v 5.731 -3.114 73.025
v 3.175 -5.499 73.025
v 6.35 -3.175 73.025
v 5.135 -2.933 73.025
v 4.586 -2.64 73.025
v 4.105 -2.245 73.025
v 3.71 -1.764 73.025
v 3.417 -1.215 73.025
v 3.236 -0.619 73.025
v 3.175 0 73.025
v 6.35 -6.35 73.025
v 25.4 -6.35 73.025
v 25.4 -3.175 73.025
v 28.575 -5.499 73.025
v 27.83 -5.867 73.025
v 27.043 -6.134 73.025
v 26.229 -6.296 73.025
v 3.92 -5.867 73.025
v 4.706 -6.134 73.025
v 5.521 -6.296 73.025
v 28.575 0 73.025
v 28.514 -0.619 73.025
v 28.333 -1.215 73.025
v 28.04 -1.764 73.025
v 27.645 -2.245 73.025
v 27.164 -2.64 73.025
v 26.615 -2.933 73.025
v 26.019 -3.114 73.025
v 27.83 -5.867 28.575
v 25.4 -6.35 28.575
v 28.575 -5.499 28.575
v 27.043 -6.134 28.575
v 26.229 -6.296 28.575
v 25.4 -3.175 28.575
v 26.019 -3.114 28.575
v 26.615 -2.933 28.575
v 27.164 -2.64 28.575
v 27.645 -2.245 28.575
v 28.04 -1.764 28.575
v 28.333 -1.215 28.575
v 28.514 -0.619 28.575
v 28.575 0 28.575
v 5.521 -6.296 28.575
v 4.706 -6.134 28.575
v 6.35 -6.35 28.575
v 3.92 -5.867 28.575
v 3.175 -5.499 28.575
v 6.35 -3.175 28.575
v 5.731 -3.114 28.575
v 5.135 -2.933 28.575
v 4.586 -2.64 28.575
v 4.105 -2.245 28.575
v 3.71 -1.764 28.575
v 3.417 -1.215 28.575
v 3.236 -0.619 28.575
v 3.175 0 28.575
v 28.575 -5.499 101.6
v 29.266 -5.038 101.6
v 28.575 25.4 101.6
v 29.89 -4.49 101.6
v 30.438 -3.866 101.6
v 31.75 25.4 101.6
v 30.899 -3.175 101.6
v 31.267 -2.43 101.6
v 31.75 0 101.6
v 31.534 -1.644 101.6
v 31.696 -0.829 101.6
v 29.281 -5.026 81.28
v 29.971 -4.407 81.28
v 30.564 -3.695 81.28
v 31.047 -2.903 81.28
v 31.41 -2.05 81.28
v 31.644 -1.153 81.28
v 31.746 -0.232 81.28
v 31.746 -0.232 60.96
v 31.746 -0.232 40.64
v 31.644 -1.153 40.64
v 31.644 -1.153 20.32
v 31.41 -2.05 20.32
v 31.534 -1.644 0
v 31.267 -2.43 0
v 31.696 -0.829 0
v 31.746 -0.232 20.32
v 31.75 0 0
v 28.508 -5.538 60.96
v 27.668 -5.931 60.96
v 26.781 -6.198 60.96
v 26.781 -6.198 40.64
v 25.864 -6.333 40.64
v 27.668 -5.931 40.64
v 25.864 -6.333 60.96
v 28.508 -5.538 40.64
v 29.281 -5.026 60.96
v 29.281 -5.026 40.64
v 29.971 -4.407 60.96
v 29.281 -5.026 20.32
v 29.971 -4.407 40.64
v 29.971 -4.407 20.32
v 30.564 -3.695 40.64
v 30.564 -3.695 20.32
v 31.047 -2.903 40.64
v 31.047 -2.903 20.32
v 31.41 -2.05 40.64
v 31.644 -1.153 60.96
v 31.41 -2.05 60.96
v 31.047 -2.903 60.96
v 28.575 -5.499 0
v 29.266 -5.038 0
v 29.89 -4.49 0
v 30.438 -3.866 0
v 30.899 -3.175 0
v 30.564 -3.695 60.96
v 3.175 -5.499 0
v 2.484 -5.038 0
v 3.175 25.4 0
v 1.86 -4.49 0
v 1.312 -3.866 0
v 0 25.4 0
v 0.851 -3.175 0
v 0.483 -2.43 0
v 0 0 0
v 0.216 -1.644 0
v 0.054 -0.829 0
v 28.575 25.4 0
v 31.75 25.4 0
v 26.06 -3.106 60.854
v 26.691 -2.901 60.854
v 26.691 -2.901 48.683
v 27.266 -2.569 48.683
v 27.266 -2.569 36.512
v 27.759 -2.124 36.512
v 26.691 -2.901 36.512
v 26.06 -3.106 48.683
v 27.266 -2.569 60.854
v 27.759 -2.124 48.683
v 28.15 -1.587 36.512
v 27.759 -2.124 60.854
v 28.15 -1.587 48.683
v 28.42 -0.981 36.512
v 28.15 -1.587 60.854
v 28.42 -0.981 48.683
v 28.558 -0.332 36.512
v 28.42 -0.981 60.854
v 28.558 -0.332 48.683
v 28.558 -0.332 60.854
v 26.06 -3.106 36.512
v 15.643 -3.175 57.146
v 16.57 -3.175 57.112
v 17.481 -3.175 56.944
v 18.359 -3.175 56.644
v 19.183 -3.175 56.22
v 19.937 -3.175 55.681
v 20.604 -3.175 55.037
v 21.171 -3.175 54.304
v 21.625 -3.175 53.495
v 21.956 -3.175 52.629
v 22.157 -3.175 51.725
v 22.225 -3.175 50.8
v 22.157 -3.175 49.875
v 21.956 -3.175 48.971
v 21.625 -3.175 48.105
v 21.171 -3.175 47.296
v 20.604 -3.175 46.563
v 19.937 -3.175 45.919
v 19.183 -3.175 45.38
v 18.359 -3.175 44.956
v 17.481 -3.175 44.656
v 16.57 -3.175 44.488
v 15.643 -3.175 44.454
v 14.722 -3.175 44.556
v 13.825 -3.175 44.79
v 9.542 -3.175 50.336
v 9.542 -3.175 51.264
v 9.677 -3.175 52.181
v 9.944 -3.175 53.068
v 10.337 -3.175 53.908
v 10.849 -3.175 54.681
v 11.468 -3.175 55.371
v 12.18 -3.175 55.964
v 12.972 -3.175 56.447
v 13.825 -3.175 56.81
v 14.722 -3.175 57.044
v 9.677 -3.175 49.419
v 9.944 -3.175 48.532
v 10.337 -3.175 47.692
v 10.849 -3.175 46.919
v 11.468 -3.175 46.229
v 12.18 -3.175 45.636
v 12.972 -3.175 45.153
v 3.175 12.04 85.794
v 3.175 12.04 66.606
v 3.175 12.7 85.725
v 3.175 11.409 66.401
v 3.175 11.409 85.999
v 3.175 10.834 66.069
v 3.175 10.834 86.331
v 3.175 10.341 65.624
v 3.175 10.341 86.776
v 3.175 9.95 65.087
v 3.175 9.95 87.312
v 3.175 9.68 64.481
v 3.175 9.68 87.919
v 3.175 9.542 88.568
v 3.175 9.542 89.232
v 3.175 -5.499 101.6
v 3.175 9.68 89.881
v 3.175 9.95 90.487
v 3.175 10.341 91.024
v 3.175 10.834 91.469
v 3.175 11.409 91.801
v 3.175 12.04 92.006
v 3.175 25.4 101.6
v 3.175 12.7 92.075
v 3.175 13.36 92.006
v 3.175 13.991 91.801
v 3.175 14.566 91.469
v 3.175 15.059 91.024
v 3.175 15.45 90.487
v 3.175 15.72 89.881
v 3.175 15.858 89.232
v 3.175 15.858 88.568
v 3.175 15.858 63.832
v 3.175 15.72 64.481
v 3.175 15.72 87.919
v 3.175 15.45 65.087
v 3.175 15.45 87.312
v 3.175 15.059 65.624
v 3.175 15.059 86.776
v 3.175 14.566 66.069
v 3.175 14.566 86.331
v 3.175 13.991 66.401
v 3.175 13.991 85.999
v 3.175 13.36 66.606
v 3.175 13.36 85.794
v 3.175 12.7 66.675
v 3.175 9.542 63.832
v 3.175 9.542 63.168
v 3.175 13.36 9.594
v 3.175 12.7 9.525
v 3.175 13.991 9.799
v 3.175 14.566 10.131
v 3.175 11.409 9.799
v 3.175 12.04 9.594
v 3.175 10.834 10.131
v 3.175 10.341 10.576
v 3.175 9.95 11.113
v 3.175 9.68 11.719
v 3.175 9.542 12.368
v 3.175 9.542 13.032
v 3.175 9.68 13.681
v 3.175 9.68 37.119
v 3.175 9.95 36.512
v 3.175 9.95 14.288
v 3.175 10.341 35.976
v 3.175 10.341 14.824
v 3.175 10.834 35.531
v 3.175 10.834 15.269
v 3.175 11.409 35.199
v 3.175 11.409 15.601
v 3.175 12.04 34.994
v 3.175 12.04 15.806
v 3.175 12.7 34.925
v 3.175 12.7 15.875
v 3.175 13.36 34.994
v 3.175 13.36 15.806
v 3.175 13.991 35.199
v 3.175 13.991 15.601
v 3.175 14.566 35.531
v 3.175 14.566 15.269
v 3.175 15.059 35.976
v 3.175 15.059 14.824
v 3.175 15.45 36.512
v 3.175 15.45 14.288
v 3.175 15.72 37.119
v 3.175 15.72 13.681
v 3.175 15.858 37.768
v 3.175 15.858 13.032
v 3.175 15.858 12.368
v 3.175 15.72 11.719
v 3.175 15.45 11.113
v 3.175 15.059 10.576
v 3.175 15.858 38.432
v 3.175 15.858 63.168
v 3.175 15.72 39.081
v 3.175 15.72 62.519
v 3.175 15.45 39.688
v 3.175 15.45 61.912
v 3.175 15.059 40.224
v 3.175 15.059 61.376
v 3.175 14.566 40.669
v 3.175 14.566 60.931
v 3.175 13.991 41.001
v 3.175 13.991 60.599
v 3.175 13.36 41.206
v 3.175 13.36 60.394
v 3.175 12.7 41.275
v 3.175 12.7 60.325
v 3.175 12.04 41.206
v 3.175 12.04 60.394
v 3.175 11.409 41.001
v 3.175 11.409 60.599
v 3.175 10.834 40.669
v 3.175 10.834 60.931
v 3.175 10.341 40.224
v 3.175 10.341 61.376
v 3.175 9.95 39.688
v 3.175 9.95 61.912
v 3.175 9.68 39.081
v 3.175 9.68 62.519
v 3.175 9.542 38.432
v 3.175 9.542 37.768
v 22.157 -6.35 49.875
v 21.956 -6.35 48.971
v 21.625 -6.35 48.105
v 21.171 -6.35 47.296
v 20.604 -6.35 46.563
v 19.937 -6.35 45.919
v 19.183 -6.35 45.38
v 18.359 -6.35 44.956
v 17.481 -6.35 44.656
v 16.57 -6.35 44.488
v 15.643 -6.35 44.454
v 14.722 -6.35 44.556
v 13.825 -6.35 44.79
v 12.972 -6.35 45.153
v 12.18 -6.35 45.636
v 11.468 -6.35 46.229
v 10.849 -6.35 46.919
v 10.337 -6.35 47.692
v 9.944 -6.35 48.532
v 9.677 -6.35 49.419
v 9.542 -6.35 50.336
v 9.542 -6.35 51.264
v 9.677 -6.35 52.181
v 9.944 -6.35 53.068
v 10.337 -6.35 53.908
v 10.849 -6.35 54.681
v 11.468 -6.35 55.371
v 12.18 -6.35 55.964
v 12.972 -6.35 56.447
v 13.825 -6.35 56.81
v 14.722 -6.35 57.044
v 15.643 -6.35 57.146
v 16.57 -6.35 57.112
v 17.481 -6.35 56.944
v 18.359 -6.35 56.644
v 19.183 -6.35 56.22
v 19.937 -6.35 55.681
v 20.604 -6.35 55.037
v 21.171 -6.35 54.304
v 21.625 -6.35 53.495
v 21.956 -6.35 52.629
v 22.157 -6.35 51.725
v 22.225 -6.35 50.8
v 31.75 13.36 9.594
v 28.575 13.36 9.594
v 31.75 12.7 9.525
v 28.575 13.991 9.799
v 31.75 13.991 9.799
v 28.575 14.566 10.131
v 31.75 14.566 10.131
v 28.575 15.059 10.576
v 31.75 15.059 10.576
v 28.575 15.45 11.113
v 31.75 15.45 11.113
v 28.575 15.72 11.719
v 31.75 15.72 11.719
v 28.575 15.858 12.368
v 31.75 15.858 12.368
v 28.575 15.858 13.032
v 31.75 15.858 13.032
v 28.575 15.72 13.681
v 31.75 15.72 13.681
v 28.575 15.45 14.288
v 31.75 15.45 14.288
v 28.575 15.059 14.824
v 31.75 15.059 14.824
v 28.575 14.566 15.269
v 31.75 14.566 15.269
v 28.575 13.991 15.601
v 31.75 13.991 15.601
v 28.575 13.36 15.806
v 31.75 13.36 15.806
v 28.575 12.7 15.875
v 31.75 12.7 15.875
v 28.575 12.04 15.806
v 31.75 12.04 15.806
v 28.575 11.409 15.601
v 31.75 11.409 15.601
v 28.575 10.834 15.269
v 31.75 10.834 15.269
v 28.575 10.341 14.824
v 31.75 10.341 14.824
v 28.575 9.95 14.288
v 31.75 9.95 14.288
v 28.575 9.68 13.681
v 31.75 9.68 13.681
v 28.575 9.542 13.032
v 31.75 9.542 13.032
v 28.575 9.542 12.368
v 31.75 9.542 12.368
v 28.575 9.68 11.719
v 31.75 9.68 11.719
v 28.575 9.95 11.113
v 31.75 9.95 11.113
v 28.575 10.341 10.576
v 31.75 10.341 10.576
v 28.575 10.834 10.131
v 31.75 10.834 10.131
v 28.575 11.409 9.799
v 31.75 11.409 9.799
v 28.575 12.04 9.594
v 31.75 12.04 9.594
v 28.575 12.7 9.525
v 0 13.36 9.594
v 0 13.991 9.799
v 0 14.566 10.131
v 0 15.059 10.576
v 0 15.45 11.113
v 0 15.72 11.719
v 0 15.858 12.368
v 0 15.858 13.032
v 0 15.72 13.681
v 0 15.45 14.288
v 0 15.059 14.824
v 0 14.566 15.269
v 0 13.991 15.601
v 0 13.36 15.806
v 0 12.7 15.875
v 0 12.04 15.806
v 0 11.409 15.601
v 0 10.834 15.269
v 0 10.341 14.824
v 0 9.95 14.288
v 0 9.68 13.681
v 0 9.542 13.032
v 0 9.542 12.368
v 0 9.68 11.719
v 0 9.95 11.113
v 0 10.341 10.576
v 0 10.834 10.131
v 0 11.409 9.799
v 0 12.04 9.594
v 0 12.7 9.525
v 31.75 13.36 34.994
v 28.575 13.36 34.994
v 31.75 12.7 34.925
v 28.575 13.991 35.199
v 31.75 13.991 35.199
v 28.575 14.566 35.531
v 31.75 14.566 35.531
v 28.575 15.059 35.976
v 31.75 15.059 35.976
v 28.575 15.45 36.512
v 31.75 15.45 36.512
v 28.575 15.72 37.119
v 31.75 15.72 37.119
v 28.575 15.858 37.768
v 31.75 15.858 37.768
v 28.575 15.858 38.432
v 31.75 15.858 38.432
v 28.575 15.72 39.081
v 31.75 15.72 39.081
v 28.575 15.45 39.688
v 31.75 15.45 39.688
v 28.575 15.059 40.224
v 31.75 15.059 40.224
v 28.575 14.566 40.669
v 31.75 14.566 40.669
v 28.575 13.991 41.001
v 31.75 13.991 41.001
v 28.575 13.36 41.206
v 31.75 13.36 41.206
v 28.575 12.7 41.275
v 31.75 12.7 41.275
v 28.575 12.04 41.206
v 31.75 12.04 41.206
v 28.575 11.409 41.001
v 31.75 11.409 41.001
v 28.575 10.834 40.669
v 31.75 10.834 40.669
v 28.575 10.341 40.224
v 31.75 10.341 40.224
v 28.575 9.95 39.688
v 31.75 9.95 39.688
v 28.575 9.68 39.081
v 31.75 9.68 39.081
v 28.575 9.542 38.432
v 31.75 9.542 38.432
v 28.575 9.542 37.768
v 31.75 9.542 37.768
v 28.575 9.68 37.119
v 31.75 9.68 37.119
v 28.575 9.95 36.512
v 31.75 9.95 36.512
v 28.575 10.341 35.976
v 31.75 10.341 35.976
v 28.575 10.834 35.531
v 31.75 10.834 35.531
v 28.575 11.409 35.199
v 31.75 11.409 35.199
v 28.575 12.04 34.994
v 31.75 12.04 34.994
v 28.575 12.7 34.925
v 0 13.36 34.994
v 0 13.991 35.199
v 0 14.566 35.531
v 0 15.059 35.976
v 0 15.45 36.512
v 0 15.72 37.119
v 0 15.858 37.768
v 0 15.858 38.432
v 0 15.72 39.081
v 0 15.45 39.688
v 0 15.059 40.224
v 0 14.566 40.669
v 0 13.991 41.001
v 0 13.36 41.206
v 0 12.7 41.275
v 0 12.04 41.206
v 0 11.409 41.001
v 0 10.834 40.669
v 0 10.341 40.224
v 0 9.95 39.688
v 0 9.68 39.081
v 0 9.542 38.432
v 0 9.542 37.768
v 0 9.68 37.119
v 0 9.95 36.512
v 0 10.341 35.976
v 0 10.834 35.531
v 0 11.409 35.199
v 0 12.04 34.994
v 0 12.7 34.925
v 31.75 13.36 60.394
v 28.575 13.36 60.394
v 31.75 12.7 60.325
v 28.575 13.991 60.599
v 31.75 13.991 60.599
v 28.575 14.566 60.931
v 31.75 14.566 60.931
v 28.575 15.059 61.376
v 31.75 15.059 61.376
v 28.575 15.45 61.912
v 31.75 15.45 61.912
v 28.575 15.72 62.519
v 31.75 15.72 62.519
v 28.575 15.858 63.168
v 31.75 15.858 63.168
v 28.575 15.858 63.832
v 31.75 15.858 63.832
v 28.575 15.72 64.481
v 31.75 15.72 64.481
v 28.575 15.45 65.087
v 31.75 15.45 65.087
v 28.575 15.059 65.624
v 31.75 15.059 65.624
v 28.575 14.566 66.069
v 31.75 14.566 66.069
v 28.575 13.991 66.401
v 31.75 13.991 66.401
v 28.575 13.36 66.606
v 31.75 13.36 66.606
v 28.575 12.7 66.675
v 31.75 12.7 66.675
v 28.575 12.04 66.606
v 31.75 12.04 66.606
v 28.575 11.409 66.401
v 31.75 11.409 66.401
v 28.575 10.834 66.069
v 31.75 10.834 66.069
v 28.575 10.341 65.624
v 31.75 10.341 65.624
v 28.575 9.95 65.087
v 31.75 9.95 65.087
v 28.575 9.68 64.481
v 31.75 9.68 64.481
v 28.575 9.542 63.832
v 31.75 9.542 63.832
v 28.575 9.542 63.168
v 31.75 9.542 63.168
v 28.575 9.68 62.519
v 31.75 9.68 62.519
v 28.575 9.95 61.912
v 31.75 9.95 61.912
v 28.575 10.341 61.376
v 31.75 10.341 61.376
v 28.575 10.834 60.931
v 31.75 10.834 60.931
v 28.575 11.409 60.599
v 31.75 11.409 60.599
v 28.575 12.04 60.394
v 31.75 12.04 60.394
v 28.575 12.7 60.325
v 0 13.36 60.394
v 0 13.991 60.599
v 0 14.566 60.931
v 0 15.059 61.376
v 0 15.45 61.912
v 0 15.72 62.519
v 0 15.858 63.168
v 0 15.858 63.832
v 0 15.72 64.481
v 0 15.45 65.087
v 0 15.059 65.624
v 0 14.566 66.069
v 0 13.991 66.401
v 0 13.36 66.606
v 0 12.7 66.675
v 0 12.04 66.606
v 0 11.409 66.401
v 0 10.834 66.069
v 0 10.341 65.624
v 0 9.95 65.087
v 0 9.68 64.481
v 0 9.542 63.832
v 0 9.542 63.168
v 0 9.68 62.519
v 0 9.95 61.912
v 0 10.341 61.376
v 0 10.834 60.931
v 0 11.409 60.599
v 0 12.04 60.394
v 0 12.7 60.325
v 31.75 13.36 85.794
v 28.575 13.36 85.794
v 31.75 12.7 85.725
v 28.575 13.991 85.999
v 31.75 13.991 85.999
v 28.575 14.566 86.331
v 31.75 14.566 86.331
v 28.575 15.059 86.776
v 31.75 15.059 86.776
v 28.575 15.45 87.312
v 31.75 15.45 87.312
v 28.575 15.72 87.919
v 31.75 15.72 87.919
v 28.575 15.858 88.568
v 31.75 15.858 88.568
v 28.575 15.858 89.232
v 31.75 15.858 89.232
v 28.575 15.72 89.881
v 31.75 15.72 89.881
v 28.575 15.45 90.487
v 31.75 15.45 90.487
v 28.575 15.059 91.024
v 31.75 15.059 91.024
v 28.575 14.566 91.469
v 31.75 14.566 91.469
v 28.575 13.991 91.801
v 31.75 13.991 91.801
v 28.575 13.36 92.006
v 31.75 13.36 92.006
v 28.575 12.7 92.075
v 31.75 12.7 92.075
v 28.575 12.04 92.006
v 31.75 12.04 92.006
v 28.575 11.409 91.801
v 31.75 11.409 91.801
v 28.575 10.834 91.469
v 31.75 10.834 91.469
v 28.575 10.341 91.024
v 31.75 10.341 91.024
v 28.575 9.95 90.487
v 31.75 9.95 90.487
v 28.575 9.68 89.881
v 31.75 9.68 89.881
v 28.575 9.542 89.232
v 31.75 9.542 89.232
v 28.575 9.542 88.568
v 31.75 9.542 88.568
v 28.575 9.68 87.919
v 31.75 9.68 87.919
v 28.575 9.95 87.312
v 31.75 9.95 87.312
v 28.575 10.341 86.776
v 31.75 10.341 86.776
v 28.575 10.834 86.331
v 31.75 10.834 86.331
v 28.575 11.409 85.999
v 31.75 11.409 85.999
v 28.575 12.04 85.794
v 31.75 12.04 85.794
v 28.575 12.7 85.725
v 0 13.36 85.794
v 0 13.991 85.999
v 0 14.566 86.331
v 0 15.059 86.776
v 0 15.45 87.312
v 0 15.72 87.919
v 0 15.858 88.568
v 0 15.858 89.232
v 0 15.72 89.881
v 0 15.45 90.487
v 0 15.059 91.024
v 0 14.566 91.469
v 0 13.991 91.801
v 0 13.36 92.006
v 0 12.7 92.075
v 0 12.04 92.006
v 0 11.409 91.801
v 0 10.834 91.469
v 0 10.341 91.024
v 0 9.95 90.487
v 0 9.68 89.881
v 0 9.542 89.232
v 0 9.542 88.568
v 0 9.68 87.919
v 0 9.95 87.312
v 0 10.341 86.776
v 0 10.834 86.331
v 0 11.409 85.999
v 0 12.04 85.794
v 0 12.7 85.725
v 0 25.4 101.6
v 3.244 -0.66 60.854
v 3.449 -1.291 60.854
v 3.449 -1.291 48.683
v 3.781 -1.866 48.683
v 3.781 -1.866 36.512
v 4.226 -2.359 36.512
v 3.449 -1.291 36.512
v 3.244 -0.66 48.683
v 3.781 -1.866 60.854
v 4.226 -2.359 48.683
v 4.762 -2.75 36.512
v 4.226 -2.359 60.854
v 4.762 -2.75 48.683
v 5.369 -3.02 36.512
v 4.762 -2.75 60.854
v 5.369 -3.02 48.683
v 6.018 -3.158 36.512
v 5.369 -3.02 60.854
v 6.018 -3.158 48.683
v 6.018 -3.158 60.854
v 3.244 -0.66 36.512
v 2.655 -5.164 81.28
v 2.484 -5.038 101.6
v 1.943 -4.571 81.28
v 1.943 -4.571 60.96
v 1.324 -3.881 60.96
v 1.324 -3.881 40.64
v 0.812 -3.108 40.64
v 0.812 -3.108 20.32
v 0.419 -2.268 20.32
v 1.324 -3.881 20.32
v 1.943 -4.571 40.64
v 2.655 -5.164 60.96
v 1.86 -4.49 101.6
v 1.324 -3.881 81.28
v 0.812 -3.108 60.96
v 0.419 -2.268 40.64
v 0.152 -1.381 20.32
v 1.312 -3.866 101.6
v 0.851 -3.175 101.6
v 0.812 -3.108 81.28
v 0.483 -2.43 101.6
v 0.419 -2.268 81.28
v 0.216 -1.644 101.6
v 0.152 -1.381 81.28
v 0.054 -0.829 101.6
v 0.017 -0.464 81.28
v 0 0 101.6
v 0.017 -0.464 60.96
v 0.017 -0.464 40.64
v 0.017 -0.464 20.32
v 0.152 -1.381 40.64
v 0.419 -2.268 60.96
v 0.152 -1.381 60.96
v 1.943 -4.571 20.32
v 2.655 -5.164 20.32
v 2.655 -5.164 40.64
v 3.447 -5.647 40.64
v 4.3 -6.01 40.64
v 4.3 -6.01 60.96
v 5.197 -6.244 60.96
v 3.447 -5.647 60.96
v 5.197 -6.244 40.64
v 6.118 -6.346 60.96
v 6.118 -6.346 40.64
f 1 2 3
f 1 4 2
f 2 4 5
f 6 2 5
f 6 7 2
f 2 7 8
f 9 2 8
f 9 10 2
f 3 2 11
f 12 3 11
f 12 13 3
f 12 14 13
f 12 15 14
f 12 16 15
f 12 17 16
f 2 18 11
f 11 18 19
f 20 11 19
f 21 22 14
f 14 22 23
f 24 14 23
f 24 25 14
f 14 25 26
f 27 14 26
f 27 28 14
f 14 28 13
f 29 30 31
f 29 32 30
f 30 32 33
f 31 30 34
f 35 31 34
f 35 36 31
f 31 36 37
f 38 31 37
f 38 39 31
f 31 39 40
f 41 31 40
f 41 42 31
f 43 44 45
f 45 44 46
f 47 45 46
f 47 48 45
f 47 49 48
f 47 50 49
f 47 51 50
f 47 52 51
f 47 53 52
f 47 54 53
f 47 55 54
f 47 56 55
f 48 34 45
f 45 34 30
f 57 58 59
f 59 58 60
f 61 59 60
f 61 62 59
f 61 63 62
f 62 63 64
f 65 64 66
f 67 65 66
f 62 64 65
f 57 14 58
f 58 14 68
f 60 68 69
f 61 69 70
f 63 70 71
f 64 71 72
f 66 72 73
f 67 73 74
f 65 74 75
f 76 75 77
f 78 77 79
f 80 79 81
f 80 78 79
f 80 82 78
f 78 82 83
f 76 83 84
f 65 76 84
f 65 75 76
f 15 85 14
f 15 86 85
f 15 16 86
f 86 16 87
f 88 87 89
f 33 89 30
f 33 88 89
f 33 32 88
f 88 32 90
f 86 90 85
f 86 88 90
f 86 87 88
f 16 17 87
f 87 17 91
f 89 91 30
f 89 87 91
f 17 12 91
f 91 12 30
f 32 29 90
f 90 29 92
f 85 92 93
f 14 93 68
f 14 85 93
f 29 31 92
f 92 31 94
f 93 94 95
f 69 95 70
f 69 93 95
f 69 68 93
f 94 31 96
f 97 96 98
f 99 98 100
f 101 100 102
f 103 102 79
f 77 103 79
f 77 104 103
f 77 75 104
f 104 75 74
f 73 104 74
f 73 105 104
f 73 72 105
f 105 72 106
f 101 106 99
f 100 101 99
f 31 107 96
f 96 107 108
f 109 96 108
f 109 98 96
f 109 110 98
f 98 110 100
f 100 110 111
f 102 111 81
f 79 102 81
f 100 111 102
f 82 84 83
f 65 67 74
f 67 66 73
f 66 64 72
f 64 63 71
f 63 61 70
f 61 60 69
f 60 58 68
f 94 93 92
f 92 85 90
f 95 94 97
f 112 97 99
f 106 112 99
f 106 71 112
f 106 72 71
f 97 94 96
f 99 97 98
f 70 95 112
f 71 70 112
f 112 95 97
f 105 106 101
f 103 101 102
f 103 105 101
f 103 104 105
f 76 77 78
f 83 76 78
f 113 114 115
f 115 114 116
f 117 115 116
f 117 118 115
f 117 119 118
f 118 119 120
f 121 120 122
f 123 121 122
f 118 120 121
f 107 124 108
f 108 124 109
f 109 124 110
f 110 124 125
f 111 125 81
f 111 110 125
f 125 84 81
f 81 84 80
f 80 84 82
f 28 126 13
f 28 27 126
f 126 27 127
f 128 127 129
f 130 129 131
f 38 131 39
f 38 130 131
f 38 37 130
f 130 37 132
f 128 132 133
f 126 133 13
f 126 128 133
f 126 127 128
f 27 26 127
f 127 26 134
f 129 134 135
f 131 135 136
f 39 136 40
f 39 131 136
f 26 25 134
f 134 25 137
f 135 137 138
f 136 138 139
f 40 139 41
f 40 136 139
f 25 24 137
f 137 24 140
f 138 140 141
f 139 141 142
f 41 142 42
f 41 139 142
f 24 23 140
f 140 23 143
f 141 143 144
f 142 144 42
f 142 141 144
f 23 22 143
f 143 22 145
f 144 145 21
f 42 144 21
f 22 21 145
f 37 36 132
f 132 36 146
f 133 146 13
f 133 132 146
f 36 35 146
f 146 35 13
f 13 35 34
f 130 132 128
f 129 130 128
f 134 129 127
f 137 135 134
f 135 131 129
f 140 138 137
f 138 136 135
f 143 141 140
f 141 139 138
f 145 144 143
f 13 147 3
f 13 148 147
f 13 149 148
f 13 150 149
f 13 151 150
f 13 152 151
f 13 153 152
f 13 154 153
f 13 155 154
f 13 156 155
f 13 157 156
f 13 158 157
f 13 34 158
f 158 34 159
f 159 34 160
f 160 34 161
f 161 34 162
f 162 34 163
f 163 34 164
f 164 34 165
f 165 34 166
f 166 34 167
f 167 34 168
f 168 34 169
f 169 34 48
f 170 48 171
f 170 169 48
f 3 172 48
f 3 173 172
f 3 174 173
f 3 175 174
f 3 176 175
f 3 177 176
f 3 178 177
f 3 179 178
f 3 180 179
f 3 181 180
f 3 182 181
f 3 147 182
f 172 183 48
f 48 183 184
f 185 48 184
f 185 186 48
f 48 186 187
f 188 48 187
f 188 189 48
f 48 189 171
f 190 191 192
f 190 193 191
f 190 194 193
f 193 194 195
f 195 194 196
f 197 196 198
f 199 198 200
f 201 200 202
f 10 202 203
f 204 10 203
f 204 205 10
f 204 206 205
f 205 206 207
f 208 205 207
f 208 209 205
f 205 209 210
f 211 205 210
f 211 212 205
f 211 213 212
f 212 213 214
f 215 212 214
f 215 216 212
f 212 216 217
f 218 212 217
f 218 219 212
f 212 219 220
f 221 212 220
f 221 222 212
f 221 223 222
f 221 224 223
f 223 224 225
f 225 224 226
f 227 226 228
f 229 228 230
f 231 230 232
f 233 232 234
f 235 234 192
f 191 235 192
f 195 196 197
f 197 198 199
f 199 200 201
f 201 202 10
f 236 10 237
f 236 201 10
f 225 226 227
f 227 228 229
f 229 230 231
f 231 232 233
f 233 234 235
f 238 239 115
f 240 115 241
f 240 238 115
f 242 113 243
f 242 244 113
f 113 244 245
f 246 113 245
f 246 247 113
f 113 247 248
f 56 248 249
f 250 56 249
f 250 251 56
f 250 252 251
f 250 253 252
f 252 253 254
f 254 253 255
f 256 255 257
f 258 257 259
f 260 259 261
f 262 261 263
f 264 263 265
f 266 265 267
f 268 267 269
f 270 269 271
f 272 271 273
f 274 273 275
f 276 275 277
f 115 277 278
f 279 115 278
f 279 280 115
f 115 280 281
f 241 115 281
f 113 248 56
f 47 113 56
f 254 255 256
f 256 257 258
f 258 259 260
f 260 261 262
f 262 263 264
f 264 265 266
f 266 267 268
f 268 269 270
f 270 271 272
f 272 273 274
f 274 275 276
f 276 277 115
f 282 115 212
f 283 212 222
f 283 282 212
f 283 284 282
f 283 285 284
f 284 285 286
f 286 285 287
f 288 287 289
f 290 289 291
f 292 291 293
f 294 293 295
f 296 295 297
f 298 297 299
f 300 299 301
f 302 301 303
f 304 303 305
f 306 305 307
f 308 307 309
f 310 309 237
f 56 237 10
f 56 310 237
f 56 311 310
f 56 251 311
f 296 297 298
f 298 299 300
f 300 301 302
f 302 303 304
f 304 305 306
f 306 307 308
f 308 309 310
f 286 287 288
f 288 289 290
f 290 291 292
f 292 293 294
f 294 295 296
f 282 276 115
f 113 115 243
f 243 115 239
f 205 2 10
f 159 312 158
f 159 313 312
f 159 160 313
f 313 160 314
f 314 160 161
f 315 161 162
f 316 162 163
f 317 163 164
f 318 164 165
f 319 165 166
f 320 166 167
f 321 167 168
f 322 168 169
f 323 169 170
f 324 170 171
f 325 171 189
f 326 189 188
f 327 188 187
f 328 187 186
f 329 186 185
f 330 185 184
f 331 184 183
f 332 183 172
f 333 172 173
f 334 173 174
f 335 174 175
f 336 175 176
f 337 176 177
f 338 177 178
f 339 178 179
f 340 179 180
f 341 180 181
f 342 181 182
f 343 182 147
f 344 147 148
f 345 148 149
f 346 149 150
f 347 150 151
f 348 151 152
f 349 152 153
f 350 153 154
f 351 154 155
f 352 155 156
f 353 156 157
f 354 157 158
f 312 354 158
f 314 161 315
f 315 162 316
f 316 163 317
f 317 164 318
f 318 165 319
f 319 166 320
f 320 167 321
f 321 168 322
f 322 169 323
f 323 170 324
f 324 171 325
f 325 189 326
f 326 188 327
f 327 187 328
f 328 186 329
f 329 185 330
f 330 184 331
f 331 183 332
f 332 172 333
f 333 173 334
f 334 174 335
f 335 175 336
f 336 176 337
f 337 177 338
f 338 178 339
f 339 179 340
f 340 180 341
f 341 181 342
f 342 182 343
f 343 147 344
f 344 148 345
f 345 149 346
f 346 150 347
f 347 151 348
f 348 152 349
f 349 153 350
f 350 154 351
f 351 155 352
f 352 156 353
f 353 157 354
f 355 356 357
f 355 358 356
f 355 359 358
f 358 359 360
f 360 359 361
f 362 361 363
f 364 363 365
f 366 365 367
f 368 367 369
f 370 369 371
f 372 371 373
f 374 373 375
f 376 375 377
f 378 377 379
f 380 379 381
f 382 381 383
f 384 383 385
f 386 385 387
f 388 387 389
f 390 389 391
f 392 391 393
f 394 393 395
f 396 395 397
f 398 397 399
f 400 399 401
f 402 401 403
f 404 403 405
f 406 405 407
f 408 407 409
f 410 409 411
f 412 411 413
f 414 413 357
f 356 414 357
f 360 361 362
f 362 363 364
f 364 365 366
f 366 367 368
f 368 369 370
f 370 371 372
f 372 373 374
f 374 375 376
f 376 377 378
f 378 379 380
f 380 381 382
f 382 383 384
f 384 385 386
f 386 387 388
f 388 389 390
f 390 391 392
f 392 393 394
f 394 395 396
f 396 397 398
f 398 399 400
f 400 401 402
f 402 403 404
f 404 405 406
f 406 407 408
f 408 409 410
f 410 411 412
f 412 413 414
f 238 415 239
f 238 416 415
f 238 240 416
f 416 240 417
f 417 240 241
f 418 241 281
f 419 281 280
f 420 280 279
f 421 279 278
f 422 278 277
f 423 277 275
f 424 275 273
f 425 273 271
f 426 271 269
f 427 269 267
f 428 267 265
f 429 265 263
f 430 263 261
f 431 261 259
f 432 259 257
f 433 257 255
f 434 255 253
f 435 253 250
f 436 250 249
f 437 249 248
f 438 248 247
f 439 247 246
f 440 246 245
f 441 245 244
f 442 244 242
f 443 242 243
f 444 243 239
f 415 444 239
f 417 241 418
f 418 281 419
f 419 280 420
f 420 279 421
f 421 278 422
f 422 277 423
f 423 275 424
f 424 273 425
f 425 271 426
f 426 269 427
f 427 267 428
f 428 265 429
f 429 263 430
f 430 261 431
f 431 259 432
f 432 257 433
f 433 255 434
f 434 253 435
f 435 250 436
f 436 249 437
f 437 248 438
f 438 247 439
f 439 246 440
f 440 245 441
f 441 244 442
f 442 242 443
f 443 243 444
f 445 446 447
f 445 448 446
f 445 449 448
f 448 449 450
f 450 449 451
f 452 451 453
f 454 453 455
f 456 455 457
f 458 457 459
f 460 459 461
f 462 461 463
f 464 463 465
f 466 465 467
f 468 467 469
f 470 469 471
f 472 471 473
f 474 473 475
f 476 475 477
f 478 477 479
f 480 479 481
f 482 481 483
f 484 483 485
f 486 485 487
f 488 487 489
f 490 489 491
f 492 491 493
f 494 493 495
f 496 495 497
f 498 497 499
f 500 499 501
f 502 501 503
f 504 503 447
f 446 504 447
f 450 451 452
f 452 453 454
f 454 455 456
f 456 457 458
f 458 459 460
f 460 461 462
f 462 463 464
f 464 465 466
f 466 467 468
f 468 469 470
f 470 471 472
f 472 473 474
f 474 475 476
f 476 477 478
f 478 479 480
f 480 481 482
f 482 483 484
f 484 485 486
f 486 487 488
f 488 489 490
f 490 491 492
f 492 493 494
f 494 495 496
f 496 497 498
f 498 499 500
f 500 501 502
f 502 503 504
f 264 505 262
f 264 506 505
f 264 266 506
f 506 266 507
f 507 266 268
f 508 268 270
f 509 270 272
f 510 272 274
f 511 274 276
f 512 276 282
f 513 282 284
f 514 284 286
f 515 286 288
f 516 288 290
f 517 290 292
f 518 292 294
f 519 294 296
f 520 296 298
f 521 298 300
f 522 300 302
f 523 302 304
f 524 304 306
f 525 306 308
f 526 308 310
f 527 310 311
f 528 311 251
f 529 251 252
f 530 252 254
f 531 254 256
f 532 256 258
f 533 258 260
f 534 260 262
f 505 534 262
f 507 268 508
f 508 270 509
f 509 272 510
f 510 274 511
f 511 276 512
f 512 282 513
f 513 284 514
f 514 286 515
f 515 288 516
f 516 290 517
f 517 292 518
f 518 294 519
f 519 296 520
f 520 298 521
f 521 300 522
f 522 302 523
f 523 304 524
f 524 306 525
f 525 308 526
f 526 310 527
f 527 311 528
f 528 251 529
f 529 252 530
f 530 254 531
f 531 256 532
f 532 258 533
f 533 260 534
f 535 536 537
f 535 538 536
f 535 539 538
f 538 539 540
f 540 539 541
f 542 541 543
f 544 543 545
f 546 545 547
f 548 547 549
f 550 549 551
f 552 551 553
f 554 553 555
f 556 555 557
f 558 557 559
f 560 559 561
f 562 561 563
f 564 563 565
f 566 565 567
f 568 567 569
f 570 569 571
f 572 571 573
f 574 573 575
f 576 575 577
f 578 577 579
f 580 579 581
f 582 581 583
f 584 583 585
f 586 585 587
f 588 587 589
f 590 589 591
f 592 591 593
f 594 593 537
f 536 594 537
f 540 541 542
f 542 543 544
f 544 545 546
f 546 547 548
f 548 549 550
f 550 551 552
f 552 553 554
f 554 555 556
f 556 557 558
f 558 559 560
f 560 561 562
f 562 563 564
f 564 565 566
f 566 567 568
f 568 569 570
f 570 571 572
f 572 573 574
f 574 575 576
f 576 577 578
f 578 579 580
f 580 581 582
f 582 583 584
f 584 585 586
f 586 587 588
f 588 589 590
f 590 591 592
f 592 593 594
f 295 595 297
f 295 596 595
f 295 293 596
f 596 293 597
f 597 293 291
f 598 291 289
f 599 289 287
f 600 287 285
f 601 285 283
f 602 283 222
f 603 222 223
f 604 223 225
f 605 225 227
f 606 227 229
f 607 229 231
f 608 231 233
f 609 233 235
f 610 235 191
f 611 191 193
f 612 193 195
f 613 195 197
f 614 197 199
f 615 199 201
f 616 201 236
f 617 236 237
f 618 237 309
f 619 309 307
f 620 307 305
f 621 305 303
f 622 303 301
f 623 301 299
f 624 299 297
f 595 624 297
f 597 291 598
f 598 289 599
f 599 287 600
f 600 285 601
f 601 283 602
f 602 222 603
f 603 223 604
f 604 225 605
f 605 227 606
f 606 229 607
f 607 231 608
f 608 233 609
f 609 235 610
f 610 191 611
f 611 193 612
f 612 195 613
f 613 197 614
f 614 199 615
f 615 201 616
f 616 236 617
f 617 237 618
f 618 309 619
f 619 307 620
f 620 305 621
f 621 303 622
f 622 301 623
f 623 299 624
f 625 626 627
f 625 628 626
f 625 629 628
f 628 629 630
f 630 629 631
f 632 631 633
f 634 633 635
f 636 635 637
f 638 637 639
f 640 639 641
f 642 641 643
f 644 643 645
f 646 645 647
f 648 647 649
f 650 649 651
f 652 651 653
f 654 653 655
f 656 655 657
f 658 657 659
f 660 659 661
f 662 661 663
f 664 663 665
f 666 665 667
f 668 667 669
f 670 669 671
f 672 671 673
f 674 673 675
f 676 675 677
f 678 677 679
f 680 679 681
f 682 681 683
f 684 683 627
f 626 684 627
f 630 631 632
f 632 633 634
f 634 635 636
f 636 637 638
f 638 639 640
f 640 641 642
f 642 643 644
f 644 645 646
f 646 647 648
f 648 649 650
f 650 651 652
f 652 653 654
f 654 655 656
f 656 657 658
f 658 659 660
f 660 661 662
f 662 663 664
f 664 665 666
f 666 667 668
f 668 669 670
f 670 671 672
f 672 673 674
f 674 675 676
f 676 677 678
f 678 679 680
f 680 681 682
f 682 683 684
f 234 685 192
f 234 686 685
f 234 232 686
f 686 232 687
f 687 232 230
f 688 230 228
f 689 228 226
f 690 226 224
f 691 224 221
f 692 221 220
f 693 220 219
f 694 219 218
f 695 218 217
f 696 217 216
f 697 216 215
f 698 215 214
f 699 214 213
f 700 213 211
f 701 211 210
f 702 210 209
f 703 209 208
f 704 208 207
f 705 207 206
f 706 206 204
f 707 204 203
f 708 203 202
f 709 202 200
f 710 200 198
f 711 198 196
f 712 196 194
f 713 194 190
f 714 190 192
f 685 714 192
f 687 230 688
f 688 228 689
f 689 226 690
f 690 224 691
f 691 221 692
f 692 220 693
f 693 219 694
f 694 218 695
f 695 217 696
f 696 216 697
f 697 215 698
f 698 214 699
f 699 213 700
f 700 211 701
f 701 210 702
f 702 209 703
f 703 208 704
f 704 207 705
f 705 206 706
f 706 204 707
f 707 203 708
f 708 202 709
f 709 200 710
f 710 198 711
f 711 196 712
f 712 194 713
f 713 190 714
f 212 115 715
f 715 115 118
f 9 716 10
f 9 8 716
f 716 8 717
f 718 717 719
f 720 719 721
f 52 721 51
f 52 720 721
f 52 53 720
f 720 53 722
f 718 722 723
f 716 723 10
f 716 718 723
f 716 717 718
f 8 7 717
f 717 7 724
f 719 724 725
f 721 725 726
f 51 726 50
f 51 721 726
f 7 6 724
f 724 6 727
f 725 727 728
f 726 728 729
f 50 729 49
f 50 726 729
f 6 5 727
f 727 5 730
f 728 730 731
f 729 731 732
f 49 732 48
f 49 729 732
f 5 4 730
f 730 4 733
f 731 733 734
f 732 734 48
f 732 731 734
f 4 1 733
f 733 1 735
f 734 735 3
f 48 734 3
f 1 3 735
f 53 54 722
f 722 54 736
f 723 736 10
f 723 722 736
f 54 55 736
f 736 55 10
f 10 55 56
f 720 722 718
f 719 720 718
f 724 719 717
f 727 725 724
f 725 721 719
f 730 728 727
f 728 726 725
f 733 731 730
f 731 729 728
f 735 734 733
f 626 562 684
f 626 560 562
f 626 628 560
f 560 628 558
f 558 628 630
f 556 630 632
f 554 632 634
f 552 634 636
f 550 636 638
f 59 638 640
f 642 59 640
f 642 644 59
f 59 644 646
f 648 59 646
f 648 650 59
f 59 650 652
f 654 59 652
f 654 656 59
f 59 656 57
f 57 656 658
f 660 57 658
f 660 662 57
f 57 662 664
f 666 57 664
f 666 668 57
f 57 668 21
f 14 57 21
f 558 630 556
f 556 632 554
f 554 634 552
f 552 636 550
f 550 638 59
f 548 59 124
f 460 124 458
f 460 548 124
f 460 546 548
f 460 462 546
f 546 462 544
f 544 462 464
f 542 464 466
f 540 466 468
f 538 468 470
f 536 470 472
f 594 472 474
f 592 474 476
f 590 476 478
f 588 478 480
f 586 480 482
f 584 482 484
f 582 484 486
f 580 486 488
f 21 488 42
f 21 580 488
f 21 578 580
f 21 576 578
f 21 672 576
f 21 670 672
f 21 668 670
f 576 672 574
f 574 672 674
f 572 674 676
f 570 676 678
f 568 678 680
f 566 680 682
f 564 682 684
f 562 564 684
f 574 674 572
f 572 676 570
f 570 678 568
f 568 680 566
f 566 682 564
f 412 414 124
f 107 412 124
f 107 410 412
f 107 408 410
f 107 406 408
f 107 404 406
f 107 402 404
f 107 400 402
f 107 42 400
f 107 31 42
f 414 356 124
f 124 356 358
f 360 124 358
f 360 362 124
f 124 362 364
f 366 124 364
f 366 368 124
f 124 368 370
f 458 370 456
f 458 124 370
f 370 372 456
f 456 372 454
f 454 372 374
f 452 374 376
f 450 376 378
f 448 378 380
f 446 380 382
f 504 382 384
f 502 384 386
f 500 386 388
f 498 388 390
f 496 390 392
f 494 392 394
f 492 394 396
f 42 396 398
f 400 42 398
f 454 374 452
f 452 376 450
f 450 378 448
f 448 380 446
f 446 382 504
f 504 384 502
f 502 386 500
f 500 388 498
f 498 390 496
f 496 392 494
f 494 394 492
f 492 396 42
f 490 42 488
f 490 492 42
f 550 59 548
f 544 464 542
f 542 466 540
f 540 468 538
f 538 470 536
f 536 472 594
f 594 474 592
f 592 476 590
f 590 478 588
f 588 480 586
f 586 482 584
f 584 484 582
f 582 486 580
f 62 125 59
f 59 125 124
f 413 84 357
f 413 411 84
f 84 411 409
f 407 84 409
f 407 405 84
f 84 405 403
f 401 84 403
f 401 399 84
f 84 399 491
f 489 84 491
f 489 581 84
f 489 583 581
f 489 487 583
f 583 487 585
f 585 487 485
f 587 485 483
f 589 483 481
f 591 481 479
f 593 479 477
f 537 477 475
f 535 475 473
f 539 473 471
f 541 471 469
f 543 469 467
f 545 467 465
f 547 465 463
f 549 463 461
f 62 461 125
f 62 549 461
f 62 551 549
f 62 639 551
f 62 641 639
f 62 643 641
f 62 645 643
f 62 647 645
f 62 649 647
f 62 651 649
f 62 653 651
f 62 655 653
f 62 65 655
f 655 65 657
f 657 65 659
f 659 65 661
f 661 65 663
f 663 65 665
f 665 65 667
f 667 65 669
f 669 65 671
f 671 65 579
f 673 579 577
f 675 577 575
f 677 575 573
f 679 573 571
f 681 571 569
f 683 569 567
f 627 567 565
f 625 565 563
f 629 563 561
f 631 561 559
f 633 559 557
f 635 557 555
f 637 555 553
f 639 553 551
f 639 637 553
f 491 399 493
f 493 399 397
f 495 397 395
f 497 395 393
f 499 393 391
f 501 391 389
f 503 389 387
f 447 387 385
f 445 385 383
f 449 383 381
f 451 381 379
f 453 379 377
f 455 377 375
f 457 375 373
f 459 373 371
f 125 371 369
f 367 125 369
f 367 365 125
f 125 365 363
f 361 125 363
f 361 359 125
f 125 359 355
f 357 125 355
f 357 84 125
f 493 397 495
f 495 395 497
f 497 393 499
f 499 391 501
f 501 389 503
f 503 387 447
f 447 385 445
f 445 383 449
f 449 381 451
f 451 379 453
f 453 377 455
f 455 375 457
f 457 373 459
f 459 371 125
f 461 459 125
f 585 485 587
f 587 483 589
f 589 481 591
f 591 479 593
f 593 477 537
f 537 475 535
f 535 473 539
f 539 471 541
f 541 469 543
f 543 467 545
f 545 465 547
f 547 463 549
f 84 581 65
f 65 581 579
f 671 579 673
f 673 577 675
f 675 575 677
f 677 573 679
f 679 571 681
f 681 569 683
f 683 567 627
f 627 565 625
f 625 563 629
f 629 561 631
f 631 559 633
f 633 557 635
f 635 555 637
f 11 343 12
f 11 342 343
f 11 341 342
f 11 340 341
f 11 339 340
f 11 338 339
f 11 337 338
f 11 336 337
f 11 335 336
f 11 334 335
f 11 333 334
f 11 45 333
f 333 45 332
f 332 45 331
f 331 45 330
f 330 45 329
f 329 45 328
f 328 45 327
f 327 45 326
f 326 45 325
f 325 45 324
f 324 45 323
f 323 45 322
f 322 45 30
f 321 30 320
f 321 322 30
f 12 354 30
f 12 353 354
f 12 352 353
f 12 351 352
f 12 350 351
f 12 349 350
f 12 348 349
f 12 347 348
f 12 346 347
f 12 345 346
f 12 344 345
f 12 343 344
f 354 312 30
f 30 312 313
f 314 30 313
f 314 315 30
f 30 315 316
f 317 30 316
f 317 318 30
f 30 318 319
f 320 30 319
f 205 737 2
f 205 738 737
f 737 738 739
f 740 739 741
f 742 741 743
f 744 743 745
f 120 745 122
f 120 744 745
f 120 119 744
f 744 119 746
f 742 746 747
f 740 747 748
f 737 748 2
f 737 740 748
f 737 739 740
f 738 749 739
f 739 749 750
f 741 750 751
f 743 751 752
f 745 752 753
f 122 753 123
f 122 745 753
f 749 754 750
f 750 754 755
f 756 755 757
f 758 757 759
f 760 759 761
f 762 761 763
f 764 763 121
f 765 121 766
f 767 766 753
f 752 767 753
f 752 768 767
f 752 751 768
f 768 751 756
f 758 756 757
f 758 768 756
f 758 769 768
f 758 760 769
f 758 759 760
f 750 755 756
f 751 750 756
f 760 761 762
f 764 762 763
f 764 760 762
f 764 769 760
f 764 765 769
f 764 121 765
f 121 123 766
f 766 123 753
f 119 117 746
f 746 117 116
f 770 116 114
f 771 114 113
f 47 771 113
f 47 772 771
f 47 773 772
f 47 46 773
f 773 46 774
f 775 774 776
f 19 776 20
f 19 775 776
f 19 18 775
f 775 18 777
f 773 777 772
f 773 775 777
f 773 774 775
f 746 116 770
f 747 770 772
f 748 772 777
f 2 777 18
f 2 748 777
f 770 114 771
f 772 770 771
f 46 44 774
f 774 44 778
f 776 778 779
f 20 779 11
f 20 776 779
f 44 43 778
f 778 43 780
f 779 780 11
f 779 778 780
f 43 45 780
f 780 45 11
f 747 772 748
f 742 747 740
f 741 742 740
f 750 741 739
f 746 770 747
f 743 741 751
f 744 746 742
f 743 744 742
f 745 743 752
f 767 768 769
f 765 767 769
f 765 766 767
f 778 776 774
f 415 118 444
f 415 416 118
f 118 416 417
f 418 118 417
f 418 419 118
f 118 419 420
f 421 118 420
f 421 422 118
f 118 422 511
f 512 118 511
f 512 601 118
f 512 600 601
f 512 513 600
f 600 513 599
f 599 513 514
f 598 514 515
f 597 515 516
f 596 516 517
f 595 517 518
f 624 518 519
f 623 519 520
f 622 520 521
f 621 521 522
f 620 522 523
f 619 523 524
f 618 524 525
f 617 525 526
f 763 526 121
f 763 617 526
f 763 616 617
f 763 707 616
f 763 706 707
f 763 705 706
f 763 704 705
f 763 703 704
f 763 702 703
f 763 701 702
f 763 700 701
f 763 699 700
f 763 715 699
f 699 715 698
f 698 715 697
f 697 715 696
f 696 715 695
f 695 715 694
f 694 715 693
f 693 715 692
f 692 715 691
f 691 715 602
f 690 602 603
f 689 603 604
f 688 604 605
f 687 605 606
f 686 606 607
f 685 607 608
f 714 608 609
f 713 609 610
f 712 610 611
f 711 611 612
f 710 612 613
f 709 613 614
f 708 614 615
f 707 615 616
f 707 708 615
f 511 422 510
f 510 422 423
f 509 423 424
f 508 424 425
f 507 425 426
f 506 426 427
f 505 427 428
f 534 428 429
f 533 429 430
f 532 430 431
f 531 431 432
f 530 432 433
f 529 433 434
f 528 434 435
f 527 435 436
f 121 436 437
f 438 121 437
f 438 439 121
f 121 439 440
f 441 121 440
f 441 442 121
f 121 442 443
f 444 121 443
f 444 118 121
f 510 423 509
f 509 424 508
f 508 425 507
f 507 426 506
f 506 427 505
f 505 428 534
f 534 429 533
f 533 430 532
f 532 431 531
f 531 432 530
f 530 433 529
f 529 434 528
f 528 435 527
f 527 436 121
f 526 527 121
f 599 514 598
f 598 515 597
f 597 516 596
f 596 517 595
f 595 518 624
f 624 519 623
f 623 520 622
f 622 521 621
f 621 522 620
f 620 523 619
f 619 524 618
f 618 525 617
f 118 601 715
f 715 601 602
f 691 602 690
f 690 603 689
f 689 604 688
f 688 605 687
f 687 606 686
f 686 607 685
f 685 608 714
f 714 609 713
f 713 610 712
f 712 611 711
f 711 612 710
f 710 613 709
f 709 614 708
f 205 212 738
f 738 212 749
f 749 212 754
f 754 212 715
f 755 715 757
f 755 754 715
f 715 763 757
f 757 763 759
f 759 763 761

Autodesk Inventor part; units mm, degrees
ref_plane "YZ Plane" through (0, 0, 0) normal (1, 0, 0) x (0, 1, 0)
ref_plane "XZ Plane" through (0, 0, 0) normal (0, 1, 0) x (-1, 0, 0)
ref_plane "XY Plane" through (0, 0, 0) normal (0, 0, 1) x (1, 0, 0)
sketch "Sketch1" plane through (0, 0, 0) normal (0, 0, 1) x (1, 0, 0)
  line L0 (0, 25.4) -> (0, 0)
  line L1 (6.35, -6.35) -> (25.4, -6.35)
  line L2 (31.75, 0) -> (31.75, 25.4)
  line L3 (31.75, 25.4) -> (28.575, 25.4)
  line L4 (28.575, 25.4) -> (28.575, 0)
  line L5 (25.4, -3.175) -> (6.35, -3.175)
  line L6 (3.175, 0) -> (3.175, 25.4)
  line L7 (3.175, 25.4) -> (0, 25.4)
  arc A0 (3.175, 0) -> (6.35, -3.175) centre (6.35, 0) ccw
  arc A1 (0, 0) -> (6.35, -6.35) centre (6.35, 0) ccw
  arc A2 (25.4, -3.175) -> (28.575, 0) centre (25.4, 0) ccw
  arc A3 (25.4, -6.35) -> (31.75, 0) centre (25.4, 0) ccw
  dimension "d0" = 3.175
  dimension "d1" = 25.4
  dimension "d2" = 25.4
  dimension "d3" = 3.175
extrude "Extrusion1" add sketch "Sketch1" along normal blind 101.6
sketch "Sketch2" plane through (31.75, 0, 0) normal (1, 0, 0) x (0, 0, -1)
  line L0 (-101.6, 25.4) -> (-101.6, 0) projected
  line L1 (0, 25.4) -> (-101.6, 25.4) projected
  circle A0 centre (-88.9, 12.7) radius 3.175
  dimension "d6" = 6.35
  dimension "d7" = 12.7
  dimension "d8" = 12.7
extrude "Extrusion2" cut sketch "Sketch2" against normal through all
pattern_linear "Rectangular Pattern1" count 7 spacing 25.4 along (0, 0, -1) of "Extrusion2"
sketch "Sketch3" plane through (6.35, -6.35, 0) normal (0, -1, 0) x (1, 0, 0)
  line L0 (19.05, 101.6) -> (0, 101.6) projected
  circle A0 centre (9.525, 50.8) radius 6.35
  point P0 (-6.35, 0)
  dimension "d14" = 12.7
  dimension "d15" = 50.8
extrude "Extrusion3" cut sketch "Sketch3" against normal up to next
sketch "Sketch4" plane through (6.35, -6.35, 0) normal (0, -1, 0) x (1, 0, 0)
  line L0 (19.05, 101.6) -> (0, 101.6) projected
  line L1 (0, 0) -> (0, 101.6) projected
  line L2 (0, 0) -> (19.05, 0) projected
  line L3 (19.05, 0) -> (19.05, 101.6) projected
  line L4 (-3.175, 101.6) -> (22.225, 101.6)
  line L5 (22.225, 101.6) -> (22.225, 73.025)
  line L6 (22.225, 73.025) -> (-3.175, 73.025)
  line L7 (-3.175, 73.025) -> (-3.175, 101.6)
  line L8 (-3.175, 165.9576) -> (0, 165.9576) construction
  line L9 (19.05, 165.9576) -> (22.225, 165.9576) construction
  line L10 (-3.175, 0) -> (22.225, 0)
  line L11 (22.225, 0) -> (22.225, 28.575)
  line L12 (22.225, 28.575) -> (-3.175, 28.575)
  line L13 (-3.175, 28.575) -> (-3.175, 0)
  line L14 (-6.35, 101.6) -> (-3.175, 101.6)
  line L15 (-3.175, 101.6) -> (-3.175, 73.025)
  line L16 (-3.175, 73.025) -> (-6.35, 73.025)
  line L17 (-6.35, 73.025) -> (-6.35, 101.6)
  point P0 (-6.35, 0)
  dimension "d18" = 25.4
  dimension "d19" = 28.575
  dimension "d20" = 0
  dimension "d21" = 0
extrude "Extrusion4" cut sketch "Sketch4" against normal through all contours L3 L6 L1 L0 | L4 L5 L6 L3 | L1 L6 L7 L4 | L12 L11 L10 L3 | L3 L2 L1 L12 | L1 L10 L13 L12
properties part number "Frame_OuterConveyorMount" material "Aluminum-6061"
